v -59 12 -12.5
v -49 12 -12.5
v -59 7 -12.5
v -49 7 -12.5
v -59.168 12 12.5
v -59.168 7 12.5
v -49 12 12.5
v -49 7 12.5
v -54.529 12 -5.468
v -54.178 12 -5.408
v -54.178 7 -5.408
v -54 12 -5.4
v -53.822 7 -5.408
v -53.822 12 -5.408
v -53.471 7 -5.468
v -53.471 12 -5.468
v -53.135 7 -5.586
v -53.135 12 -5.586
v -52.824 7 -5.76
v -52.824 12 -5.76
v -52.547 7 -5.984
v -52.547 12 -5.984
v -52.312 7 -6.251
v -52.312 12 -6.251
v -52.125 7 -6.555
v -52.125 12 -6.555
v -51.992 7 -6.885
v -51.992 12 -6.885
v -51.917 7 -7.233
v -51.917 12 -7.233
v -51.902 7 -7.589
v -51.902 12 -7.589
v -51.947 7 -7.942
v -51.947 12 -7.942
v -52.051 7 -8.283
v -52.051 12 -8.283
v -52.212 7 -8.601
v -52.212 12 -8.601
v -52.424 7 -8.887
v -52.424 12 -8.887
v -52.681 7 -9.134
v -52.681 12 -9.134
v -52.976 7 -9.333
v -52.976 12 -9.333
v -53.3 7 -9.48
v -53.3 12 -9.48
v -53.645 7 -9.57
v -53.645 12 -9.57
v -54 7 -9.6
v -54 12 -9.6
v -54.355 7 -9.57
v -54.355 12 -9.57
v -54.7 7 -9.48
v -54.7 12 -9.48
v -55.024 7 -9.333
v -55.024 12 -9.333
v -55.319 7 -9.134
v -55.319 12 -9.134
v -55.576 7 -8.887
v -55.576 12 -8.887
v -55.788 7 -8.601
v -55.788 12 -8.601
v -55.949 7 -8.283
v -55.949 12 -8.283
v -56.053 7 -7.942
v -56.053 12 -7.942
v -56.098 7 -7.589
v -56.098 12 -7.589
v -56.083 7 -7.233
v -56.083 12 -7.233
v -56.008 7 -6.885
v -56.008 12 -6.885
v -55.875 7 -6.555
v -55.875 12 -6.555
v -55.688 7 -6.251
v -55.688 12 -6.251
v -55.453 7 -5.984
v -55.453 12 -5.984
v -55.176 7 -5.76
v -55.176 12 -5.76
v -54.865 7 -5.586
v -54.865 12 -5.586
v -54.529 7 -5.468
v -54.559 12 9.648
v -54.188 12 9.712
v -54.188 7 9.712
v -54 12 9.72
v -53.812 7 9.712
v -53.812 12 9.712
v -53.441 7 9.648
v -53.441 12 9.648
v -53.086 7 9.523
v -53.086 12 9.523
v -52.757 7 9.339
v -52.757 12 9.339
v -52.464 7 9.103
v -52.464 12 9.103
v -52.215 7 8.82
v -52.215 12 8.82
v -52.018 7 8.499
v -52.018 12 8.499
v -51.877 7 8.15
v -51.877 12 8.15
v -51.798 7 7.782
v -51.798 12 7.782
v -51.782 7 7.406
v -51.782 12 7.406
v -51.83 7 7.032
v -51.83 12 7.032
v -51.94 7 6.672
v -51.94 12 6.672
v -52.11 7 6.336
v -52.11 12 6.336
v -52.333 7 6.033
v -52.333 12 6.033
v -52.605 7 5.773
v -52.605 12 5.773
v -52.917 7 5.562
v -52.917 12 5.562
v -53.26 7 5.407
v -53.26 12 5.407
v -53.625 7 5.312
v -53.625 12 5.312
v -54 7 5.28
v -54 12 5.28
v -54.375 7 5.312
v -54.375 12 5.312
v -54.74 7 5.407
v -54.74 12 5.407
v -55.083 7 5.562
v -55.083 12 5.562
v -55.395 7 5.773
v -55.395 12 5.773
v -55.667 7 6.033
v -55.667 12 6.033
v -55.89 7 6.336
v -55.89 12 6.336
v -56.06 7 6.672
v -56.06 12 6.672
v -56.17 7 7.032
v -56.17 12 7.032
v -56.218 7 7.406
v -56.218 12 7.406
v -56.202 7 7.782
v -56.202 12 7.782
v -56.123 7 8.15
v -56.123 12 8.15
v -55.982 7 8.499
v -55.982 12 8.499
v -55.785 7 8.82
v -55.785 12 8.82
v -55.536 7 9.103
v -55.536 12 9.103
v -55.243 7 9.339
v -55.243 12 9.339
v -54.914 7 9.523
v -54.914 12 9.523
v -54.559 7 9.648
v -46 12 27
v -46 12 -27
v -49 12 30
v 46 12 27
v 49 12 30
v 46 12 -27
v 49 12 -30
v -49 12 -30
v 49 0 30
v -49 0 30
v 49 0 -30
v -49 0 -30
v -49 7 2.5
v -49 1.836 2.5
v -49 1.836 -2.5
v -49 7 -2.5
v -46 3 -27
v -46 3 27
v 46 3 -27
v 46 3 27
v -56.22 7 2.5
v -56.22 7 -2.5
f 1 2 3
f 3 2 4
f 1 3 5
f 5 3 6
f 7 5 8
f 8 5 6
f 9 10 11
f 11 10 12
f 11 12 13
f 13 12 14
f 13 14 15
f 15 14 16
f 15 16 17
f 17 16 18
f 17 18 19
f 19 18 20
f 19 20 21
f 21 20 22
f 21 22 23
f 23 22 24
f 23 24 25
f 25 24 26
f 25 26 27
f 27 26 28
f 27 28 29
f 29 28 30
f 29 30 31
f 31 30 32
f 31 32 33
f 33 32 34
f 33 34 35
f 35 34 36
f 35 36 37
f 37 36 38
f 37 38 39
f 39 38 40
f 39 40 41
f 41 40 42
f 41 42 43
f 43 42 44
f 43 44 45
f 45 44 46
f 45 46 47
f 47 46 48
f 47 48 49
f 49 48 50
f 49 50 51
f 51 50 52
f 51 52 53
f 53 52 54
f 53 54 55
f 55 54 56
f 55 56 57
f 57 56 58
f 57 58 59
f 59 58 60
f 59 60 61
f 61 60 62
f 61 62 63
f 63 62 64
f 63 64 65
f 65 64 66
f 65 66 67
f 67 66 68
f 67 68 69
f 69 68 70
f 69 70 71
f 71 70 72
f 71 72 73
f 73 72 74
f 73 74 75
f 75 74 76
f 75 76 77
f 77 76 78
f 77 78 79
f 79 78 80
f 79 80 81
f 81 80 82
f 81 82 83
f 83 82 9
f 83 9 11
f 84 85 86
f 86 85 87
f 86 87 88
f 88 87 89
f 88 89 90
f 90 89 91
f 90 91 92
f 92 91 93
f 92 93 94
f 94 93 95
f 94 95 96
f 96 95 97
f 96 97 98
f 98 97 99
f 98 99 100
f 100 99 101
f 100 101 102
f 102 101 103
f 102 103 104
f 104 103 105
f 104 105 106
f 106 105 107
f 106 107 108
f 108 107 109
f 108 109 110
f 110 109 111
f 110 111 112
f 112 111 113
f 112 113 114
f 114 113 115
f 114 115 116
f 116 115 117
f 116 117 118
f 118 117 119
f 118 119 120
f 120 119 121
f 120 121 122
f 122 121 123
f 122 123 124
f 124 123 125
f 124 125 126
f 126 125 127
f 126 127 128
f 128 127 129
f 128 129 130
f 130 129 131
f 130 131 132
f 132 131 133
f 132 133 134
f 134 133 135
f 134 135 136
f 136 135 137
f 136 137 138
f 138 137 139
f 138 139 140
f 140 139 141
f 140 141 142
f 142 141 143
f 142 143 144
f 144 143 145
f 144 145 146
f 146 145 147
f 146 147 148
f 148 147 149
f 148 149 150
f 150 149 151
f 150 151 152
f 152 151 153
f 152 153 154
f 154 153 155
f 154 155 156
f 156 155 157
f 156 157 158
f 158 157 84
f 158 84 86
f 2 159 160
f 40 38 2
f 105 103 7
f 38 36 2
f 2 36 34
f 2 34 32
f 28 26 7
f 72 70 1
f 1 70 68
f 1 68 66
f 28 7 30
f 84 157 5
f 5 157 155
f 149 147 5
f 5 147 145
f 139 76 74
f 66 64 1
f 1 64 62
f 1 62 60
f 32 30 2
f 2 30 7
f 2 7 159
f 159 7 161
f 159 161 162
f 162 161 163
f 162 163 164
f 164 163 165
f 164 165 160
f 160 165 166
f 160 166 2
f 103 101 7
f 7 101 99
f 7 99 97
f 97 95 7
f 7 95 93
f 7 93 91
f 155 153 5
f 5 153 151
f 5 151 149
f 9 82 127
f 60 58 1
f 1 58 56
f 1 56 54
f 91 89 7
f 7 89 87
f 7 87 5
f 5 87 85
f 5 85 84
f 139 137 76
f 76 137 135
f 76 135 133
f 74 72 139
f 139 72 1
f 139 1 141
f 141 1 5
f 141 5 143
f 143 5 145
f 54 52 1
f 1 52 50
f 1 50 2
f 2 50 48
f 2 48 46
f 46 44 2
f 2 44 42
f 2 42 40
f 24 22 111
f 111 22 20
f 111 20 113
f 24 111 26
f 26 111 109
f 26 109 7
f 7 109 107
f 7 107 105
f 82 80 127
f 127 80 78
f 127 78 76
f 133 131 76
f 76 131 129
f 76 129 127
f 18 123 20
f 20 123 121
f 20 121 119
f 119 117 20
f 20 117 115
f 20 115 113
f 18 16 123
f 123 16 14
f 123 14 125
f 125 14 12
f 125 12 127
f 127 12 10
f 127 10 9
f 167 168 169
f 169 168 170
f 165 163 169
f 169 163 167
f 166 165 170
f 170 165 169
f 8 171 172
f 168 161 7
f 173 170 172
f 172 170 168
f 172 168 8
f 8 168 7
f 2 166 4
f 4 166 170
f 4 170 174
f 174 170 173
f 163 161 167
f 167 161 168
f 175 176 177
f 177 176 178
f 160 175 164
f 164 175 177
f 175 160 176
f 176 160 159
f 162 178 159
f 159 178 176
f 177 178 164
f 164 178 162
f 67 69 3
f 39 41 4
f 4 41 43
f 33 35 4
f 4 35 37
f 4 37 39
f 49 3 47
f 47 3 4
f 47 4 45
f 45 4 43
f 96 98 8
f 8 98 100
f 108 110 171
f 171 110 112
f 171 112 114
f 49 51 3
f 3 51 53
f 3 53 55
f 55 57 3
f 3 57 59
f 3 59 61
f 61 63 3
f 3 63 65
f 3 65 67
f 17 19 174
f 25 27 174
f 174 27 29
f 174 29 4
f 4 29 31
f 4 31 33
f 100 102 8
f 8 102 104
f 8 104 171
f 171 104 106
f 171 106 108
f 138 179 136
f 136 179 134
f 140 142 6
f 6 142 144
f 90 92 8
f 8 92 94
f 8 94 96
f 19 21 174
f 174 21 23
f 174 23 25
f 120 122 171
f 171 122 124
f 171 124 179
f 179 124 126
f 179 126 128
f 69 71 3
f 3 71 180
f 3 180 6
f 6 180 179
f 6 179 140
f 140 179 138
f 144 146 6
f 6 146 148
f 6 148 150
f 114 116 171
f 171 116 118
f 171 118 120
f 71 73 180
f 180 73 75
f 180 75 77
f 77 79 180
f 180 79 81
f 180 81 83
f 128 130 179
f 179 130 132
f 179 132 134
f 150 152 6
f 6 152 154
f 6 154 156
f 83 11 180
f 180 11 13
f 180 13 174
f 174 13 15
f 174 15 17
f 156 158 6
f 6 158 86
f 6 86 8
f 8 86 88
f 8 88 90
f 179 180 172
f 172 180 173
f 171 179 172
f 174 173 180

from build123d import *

# Parameters (mm, degrees)
SKETCH_1_R          = 2.1
SKETCH_1_R_2        = 2.220092539
EXTRUDE_1_DEPTH     = 12
SKETCH_2_W          = 92
SKETCH_2_H          = 54
CUT_EXTRUDE_1_DEPTH = 9
SKETCH_3_W          = 10.168078989
SKETCH_3_H          = 25
CUT_EXTRUDE_2_DEPTH = 7
RIB_1_REACH         = 69.416
SKETCH_5_WALL_W     = 145.707888858
SKETCH_5_WALL_H     = 5


with BuildPart() as part:
    # 草图1 → 凸台-拉伸1 (new body)
    with BuildSketch(Plane(origin=(0, 0, 0), x_dir=(1, 0, 0), z_dir=(0, 1, 0))):
        Polygon((49, -30), (-49, -30), (-49, -12.5), (-59.168078989, -12.5), (-59, 12.5), (-49, 12.5), (-49, 30), (49, 30), align=None)
        with Locations(Location((-54, 7.5, 0), (0, 0, 270))):
            Circle(SKETCH_1_R, mode=Mode.SUBTRACT)
        with Locations(Location((-54, -7.5, 0), (0, 0, 270))):
            Circle(SKETCH_1_R_2, mode=Mode.SUBTRACT)
    extrude(amount=EXTRUDE_1_DEPTH)

    # 草图2 → 切除-拉伸1 (cut)
    with BuildSketch(Plane(origin=(0, 12, 0), x_dir=(1, 0, 0), z_dir=(0, 1, 0))):
        Rectangle(SKETCH_2_W, SKETCH_2_H)
    extrude(amount=-CUT_EXTRUDE_1_DEPTH, mode=Mode.SUBTRACT)

    # 草图3 → 切除-拉伸2 (cut)
    with BuildSketch(Plane.XZ):
        with Locations((-54.084039495, 0)):
            Rectangle(SKETCH_3_W, SKETCH_3_H)
    extrude(amount=-CUT_EXTRUDE_2_DEPTH, mode=Mode.SUBTRACT)

    # 草图5 wall → 筋1 (add, up to next)
    with BuildSketch(Plane(origin=(-52.61004627, 4.418029941, 0), x_dir=(0.813374663447, -0.581740197049, 0), z_dir=(0.581740197049, 0.813374663447, 0)), mode=Mode.PRIVATE) as rib_1_sk1:
        Rectangle(SKETCH_5_WALL_W, SKETCH_5_WALL_H)
    rib_1_tool1 = extrude(rib_1_sk1.sketch, amount=RIB_1_REACH, mode=Mode.PRIVATE) - part.part
    add(rib_1_tool1.solids().sort_by_distance((-52.61004627, 4.418029941, 0))[0])


solid = part.part
